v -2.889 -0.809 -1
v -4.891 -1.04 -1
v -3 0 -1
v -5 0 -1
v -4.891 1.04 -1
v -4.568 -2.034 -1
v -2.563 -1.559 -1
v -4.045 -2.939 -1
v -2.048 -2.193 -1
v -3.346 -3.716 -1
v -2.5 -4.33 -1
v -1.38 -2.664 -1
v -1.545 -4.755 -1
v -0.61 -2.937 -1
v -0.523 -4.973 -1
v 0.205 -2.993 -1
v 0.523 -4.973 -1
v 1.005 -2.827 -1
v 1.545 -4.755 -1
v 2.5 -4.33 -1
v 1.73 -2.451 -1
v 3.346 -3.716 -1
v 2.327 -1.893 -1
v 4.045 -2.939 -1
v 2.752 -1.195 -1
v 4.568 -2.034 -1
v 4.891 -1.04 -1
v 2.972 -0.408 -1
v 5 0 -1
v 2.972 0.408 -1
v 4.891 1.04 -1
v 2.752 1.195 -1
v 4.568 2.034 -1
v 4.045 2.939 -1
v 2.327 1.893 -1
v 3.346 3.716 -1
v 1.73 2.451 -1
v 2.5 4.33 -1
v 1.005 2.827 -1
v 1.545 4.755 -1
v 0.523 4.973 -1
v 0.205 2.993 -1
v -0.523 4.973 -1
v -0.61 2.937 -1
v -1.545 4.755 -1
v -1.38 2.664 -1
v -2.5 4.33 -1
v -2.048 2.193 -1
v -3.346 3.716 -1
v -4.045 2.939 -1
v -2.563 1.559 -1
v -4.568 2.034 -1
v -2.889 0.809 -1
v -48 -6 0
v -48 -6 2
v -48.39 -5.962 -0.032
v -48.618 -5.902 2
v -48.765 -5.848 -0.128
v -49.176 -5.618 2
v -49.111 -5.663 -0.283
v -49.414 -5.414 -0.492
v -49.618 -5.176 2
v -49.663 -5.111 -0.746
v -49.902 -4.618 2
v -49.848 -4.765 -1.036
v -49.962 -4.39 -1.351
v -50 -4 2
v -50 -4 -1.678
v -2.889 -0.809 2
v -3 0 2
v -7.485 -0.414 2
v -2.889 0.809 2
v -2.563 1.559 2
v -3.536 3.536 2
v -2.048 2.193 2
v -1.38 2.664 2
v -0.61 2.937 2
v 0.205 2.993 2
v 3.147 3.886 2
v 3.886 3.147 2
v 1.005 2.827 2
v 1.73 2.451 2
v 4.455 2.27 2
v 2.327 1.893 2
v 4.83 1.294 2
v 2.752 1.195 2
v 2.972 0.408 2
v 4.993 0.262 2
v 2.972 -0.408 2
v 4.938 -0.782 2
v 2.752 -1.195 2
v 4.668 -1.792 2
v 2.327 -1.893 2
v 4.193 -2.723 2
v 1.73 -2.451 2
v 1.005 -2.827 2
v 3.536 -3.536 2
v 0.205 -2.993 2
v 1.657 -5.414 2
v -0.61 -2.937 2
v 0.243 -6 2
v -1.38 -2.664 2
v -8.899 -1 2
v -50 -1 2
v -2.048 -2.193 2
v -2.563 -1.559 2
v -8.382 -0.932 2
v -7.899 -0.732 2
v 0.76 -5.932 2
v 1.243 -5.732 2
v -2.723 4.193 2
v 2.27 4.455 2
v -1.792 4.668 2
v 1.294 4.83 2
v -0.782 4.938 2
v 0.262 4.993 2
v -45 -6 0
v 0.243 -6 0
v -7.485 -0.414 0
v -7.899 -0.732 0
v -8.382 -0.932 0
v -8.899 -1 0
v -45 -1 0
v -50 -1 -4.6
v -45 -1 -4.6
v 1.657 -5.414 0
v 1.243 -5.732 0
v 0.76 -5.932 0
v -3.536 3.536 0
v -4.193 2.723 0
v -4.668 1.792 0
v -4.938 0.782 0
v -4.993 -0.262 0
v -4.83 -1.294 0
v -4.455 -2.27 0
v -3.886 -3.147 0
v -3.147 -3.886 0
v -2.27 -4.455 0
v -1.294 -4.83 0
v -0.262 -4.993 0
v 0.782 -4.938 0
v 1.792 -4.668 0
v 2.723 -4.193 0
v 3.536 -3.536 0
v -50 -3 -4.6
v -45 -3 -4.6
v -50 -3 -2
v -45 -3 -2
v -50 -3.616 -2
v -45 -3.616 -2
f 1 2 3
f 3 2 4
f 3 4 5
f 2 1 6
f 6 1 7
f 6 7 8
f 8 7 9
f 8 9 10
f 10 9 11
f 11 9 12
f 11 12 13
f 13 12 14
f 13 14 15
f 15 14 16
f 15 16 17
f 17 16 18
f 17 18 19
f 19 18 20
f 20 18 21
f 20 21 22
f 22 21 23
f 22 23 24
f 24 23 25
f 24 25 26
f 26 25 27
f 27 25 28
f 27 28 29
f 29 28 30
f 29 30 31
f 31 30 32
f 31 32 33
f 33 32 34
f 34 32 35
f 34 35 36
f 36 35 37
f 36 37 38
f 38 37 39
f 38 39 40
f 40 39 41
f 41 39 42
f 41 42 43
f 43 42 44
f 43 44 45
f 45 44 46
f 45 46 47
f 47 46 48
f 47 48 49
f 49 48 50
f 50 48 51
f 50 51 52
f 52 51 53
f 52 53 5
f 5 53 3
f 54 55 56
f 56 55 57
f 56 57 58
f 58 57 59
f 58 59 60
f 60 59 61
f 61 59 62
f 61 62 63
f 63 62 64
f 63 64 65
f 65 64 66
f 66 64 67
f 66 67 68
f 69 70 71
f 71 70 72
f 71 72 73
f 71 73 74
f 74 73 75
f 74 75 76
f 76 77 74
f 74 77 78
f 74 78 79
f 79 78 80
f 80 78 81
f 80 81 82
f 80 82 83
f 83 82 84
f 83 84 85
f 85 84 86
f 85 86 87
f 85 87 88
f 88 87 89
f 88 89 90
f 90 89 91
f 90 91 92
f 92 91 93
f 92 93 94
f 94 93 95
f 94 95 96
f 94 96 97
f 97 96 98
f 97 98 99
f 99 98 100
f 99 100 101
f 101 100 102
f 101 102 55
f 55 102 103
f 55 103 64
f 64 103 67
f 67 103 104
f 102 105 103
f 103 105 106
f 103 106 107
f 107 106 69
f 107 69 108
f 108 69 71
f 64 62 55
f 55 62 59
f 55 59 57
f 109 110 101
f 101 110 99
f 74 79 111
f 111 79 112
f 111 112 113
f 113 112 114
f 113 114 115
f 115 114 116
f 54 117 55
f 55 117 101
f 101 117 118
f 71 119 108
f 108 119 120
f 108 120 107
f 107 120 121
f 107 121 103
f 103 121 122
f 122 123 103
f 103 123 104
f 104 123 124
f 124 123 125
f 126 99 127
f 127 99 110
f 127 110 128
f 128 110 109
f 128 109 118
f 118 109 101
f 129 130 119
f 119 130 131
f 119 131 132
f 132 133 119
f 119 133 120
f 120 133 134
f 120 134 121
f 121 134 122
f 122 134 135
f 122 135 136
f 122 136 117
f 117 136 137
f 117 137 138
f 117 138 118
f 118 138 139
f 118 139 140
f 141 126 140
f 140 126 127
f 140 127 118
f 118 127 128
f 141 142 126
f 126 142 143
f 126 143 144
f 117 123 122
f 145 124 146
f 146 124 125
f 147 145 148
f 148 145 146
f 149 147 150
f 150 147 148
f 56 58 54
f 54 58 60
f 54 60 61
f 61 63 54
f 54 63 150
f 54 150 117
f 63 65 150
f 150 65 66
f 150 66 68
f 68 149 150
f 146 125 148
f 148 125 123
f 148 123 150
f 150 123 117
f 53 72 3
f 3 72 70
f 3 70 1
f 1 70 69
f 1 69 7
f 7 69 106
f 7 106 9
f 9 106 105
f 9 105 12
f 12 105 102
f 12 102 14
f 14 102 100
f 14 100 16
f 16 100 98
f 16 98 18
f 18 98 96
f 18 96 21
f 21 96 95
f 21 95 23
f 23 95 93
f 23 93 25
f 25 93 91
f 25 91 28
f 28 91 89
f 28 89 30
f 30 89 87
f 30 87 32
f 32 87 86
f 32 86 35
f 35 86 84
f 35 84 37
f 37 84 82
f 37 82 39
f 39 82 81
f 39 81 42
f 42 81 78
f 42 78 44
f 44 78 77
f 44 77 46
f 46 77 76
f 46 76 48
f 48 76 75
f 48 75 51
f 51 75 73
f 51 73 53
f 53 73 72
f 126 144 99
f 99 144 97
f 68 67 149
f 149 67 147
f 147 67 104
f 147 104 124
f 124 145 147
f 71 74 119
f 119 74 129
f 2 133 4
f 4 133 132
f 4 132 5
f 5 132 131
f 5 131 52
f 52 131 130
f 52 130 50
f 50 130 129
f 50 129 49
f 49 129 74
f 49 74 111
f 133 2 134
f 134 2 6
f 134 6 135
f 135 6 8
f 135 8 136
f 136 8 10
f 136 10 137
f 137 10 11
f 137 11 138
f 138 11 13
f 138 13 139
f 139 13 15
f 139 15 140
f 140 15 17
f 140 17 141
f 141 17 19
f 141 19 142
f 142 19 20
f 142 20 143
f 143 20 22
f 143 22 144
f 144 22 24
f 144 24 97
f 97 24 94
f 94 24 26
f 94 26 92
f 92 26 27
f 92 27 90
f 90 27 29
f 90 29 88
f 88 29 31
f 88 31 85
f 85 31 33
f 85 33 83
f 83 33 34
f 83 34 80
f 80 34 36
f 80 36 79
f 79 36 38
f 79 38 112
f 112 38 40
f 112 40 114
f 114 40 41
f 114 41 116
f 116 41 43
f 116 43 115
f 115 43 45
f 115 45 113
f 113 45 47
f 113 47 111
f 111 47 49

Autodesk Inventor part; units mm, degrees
ref_plane "YZ Plane" through (0, 0, 0) normal (1, 0, 0) x (0, 1, 0)
ref_plane "XZ Plane" through (0, 0, 0) normal (0, 1, 0) x (-1, 0, 0)
ref_plane "XY Plane" through (0, 0, 0) normal (0, 0, 1) x (1, 0, 0)
sketch "Skizze1" plane through (0, 0, 0) normal (0, 0, 1) x (1, 0, 0)
  line L0 (0, 9.6853) -> (0, -8.6142) projected
  line L1 (-61.4142, 0) -> (18.4853, 0) projected
  arc A0 (3.5355, -3.5355) -> (-3.5355, 3.5355) centre (0, 0) ccw
  line L2 (-8.0711, -1) -> (-50, -1)
  line L3 (-50, -1) -> (-50, -6)
  line L4 (-50, -6) -> (1.0711, -6)
  line L5 (3.5355, -3.5355) -> (1.0711, -6)
  line L6 (-8.0711, -1) -> (-3.5355, 3.5355)
  dimension "d1" = 5
  dimension "d2" = 1
  dimension "d3" = 5
  dimension "d21" = 50
  dimension "d22" = 45
extrude "Extrusion1" add sketch "Skizze1" along normal blind 2
sketch "Skizze2" plane through (0, 0, 0) normal (0, 0, 1) x (1, 0, 0)
  point P0 (0, 0)
  point P1 (0, 0)
hole "Bohrung1" at (0, 0, 0) direction (0, 0, 1) diameter 6 end through all
sketch "Skizze5" plane through (-50, -6, 0) normal (-1, 0, 0) x (0, 0, 1)
  line L0 (0, 5) -> (0, 0) projected
  line L1 (0, 0) -> (2, 0) projected
  line L2 (2, 5) -> (2, 0) projected
  line L3 (0, 5) -> (2, 5) projected
  line L4 (0, 0) -> (2, 0) projected
  line L5 (0, 0) -> (-2, 2.3835)
  line L6 (-2, 2.3835) -> (-2, 3)
  line L7 (0, 5) -> (0, 0) projected
  line L8 (0, 0) -> (0, 5)
  line L9 (-2, 3) -> (-4.6, 3)
  line L10 (-4.6, 3) -> (-4.6, 5)
  line L11 (-4.6, 5) -> (0, 5)
  point P0 (0, 6)
  dimension "d23" = 40
  dimension "d28" = 3
  dimension "d29" = 2
  dimension "d30" = 4.6
extrude "Extrusion4" add sketch "Skizze5" against normal blind 5 contours L0 L5 L6 L9 L10 L11
fillet "Rundung1" radius 2 3 edges at (1.0711, -6, 1) (-8.0711, -1, 1) (-50, -6, 1)
sketch "Skizze8" plane through (0, 0, 0) normal (0, 0, -1) x (-1, 0, 0)
  circle A0 centre (0, 0) radius 5
  arc A1 (3.5355, 3.5355) -> (-3.5355, -3.5355) centre (0, 0) ccw projected
  circle A2 centre (0, 0) radius 3 projected
  circle A3 centre (0, 0) radius 3
  dimension "d41" = 6
extrude "Extrusion7" add sketch "Skizze8" along normal blind 1
sketch "Skizze6" plane through (0, 0, -1) normal (0, 0, -1) x (-1, 0, 0)
  circle A0 centre (0, 0) radius 1.5
  circle A1 centre (0, 0) radius 3 projected
  dimension "d32" = 3
extrude "Extrusion5" [suppressed]
sketch "Skizze7" plane through (0, 0, -12.2) normal (0, 0, -1) x (-1, 0, 0)
  line L0 (0.2, 2) -> (-0.2, 2)
  line L1 (-0.2, 2) -> (-0.2, -2)
  line L2 (-0.2, -2) -> (0.2, -2)
  line L3 (0.2, -2) -> (0.2, 2)
  line L4 (0.2, 2) -> (-0.2, -2) construction
  line L5 (-0.2, 2) -> (0.2, -2) construction
  point P0 (0, 0)
  dimension "d35" = 0.4
  dimension "d36" = 4
extrude "Extrusion6" [suppressed]
sketch "Skizze9" plane through (0, 0, -1) normal (0, 0, -1) x (-1, 0, 0)
  ellipse E0 centre (0, 0) end of major axis (0, -3.3) minor radius 3
  circle A0 centre (0, 0) radius 3 construction
  dimension "d42" = 3.3
  dimension "d43" = 3
extrude "Extrusion8" [suppressed]
chamfer "Fase1" [suppressed]
properties part number "Akkusperre Klein"
